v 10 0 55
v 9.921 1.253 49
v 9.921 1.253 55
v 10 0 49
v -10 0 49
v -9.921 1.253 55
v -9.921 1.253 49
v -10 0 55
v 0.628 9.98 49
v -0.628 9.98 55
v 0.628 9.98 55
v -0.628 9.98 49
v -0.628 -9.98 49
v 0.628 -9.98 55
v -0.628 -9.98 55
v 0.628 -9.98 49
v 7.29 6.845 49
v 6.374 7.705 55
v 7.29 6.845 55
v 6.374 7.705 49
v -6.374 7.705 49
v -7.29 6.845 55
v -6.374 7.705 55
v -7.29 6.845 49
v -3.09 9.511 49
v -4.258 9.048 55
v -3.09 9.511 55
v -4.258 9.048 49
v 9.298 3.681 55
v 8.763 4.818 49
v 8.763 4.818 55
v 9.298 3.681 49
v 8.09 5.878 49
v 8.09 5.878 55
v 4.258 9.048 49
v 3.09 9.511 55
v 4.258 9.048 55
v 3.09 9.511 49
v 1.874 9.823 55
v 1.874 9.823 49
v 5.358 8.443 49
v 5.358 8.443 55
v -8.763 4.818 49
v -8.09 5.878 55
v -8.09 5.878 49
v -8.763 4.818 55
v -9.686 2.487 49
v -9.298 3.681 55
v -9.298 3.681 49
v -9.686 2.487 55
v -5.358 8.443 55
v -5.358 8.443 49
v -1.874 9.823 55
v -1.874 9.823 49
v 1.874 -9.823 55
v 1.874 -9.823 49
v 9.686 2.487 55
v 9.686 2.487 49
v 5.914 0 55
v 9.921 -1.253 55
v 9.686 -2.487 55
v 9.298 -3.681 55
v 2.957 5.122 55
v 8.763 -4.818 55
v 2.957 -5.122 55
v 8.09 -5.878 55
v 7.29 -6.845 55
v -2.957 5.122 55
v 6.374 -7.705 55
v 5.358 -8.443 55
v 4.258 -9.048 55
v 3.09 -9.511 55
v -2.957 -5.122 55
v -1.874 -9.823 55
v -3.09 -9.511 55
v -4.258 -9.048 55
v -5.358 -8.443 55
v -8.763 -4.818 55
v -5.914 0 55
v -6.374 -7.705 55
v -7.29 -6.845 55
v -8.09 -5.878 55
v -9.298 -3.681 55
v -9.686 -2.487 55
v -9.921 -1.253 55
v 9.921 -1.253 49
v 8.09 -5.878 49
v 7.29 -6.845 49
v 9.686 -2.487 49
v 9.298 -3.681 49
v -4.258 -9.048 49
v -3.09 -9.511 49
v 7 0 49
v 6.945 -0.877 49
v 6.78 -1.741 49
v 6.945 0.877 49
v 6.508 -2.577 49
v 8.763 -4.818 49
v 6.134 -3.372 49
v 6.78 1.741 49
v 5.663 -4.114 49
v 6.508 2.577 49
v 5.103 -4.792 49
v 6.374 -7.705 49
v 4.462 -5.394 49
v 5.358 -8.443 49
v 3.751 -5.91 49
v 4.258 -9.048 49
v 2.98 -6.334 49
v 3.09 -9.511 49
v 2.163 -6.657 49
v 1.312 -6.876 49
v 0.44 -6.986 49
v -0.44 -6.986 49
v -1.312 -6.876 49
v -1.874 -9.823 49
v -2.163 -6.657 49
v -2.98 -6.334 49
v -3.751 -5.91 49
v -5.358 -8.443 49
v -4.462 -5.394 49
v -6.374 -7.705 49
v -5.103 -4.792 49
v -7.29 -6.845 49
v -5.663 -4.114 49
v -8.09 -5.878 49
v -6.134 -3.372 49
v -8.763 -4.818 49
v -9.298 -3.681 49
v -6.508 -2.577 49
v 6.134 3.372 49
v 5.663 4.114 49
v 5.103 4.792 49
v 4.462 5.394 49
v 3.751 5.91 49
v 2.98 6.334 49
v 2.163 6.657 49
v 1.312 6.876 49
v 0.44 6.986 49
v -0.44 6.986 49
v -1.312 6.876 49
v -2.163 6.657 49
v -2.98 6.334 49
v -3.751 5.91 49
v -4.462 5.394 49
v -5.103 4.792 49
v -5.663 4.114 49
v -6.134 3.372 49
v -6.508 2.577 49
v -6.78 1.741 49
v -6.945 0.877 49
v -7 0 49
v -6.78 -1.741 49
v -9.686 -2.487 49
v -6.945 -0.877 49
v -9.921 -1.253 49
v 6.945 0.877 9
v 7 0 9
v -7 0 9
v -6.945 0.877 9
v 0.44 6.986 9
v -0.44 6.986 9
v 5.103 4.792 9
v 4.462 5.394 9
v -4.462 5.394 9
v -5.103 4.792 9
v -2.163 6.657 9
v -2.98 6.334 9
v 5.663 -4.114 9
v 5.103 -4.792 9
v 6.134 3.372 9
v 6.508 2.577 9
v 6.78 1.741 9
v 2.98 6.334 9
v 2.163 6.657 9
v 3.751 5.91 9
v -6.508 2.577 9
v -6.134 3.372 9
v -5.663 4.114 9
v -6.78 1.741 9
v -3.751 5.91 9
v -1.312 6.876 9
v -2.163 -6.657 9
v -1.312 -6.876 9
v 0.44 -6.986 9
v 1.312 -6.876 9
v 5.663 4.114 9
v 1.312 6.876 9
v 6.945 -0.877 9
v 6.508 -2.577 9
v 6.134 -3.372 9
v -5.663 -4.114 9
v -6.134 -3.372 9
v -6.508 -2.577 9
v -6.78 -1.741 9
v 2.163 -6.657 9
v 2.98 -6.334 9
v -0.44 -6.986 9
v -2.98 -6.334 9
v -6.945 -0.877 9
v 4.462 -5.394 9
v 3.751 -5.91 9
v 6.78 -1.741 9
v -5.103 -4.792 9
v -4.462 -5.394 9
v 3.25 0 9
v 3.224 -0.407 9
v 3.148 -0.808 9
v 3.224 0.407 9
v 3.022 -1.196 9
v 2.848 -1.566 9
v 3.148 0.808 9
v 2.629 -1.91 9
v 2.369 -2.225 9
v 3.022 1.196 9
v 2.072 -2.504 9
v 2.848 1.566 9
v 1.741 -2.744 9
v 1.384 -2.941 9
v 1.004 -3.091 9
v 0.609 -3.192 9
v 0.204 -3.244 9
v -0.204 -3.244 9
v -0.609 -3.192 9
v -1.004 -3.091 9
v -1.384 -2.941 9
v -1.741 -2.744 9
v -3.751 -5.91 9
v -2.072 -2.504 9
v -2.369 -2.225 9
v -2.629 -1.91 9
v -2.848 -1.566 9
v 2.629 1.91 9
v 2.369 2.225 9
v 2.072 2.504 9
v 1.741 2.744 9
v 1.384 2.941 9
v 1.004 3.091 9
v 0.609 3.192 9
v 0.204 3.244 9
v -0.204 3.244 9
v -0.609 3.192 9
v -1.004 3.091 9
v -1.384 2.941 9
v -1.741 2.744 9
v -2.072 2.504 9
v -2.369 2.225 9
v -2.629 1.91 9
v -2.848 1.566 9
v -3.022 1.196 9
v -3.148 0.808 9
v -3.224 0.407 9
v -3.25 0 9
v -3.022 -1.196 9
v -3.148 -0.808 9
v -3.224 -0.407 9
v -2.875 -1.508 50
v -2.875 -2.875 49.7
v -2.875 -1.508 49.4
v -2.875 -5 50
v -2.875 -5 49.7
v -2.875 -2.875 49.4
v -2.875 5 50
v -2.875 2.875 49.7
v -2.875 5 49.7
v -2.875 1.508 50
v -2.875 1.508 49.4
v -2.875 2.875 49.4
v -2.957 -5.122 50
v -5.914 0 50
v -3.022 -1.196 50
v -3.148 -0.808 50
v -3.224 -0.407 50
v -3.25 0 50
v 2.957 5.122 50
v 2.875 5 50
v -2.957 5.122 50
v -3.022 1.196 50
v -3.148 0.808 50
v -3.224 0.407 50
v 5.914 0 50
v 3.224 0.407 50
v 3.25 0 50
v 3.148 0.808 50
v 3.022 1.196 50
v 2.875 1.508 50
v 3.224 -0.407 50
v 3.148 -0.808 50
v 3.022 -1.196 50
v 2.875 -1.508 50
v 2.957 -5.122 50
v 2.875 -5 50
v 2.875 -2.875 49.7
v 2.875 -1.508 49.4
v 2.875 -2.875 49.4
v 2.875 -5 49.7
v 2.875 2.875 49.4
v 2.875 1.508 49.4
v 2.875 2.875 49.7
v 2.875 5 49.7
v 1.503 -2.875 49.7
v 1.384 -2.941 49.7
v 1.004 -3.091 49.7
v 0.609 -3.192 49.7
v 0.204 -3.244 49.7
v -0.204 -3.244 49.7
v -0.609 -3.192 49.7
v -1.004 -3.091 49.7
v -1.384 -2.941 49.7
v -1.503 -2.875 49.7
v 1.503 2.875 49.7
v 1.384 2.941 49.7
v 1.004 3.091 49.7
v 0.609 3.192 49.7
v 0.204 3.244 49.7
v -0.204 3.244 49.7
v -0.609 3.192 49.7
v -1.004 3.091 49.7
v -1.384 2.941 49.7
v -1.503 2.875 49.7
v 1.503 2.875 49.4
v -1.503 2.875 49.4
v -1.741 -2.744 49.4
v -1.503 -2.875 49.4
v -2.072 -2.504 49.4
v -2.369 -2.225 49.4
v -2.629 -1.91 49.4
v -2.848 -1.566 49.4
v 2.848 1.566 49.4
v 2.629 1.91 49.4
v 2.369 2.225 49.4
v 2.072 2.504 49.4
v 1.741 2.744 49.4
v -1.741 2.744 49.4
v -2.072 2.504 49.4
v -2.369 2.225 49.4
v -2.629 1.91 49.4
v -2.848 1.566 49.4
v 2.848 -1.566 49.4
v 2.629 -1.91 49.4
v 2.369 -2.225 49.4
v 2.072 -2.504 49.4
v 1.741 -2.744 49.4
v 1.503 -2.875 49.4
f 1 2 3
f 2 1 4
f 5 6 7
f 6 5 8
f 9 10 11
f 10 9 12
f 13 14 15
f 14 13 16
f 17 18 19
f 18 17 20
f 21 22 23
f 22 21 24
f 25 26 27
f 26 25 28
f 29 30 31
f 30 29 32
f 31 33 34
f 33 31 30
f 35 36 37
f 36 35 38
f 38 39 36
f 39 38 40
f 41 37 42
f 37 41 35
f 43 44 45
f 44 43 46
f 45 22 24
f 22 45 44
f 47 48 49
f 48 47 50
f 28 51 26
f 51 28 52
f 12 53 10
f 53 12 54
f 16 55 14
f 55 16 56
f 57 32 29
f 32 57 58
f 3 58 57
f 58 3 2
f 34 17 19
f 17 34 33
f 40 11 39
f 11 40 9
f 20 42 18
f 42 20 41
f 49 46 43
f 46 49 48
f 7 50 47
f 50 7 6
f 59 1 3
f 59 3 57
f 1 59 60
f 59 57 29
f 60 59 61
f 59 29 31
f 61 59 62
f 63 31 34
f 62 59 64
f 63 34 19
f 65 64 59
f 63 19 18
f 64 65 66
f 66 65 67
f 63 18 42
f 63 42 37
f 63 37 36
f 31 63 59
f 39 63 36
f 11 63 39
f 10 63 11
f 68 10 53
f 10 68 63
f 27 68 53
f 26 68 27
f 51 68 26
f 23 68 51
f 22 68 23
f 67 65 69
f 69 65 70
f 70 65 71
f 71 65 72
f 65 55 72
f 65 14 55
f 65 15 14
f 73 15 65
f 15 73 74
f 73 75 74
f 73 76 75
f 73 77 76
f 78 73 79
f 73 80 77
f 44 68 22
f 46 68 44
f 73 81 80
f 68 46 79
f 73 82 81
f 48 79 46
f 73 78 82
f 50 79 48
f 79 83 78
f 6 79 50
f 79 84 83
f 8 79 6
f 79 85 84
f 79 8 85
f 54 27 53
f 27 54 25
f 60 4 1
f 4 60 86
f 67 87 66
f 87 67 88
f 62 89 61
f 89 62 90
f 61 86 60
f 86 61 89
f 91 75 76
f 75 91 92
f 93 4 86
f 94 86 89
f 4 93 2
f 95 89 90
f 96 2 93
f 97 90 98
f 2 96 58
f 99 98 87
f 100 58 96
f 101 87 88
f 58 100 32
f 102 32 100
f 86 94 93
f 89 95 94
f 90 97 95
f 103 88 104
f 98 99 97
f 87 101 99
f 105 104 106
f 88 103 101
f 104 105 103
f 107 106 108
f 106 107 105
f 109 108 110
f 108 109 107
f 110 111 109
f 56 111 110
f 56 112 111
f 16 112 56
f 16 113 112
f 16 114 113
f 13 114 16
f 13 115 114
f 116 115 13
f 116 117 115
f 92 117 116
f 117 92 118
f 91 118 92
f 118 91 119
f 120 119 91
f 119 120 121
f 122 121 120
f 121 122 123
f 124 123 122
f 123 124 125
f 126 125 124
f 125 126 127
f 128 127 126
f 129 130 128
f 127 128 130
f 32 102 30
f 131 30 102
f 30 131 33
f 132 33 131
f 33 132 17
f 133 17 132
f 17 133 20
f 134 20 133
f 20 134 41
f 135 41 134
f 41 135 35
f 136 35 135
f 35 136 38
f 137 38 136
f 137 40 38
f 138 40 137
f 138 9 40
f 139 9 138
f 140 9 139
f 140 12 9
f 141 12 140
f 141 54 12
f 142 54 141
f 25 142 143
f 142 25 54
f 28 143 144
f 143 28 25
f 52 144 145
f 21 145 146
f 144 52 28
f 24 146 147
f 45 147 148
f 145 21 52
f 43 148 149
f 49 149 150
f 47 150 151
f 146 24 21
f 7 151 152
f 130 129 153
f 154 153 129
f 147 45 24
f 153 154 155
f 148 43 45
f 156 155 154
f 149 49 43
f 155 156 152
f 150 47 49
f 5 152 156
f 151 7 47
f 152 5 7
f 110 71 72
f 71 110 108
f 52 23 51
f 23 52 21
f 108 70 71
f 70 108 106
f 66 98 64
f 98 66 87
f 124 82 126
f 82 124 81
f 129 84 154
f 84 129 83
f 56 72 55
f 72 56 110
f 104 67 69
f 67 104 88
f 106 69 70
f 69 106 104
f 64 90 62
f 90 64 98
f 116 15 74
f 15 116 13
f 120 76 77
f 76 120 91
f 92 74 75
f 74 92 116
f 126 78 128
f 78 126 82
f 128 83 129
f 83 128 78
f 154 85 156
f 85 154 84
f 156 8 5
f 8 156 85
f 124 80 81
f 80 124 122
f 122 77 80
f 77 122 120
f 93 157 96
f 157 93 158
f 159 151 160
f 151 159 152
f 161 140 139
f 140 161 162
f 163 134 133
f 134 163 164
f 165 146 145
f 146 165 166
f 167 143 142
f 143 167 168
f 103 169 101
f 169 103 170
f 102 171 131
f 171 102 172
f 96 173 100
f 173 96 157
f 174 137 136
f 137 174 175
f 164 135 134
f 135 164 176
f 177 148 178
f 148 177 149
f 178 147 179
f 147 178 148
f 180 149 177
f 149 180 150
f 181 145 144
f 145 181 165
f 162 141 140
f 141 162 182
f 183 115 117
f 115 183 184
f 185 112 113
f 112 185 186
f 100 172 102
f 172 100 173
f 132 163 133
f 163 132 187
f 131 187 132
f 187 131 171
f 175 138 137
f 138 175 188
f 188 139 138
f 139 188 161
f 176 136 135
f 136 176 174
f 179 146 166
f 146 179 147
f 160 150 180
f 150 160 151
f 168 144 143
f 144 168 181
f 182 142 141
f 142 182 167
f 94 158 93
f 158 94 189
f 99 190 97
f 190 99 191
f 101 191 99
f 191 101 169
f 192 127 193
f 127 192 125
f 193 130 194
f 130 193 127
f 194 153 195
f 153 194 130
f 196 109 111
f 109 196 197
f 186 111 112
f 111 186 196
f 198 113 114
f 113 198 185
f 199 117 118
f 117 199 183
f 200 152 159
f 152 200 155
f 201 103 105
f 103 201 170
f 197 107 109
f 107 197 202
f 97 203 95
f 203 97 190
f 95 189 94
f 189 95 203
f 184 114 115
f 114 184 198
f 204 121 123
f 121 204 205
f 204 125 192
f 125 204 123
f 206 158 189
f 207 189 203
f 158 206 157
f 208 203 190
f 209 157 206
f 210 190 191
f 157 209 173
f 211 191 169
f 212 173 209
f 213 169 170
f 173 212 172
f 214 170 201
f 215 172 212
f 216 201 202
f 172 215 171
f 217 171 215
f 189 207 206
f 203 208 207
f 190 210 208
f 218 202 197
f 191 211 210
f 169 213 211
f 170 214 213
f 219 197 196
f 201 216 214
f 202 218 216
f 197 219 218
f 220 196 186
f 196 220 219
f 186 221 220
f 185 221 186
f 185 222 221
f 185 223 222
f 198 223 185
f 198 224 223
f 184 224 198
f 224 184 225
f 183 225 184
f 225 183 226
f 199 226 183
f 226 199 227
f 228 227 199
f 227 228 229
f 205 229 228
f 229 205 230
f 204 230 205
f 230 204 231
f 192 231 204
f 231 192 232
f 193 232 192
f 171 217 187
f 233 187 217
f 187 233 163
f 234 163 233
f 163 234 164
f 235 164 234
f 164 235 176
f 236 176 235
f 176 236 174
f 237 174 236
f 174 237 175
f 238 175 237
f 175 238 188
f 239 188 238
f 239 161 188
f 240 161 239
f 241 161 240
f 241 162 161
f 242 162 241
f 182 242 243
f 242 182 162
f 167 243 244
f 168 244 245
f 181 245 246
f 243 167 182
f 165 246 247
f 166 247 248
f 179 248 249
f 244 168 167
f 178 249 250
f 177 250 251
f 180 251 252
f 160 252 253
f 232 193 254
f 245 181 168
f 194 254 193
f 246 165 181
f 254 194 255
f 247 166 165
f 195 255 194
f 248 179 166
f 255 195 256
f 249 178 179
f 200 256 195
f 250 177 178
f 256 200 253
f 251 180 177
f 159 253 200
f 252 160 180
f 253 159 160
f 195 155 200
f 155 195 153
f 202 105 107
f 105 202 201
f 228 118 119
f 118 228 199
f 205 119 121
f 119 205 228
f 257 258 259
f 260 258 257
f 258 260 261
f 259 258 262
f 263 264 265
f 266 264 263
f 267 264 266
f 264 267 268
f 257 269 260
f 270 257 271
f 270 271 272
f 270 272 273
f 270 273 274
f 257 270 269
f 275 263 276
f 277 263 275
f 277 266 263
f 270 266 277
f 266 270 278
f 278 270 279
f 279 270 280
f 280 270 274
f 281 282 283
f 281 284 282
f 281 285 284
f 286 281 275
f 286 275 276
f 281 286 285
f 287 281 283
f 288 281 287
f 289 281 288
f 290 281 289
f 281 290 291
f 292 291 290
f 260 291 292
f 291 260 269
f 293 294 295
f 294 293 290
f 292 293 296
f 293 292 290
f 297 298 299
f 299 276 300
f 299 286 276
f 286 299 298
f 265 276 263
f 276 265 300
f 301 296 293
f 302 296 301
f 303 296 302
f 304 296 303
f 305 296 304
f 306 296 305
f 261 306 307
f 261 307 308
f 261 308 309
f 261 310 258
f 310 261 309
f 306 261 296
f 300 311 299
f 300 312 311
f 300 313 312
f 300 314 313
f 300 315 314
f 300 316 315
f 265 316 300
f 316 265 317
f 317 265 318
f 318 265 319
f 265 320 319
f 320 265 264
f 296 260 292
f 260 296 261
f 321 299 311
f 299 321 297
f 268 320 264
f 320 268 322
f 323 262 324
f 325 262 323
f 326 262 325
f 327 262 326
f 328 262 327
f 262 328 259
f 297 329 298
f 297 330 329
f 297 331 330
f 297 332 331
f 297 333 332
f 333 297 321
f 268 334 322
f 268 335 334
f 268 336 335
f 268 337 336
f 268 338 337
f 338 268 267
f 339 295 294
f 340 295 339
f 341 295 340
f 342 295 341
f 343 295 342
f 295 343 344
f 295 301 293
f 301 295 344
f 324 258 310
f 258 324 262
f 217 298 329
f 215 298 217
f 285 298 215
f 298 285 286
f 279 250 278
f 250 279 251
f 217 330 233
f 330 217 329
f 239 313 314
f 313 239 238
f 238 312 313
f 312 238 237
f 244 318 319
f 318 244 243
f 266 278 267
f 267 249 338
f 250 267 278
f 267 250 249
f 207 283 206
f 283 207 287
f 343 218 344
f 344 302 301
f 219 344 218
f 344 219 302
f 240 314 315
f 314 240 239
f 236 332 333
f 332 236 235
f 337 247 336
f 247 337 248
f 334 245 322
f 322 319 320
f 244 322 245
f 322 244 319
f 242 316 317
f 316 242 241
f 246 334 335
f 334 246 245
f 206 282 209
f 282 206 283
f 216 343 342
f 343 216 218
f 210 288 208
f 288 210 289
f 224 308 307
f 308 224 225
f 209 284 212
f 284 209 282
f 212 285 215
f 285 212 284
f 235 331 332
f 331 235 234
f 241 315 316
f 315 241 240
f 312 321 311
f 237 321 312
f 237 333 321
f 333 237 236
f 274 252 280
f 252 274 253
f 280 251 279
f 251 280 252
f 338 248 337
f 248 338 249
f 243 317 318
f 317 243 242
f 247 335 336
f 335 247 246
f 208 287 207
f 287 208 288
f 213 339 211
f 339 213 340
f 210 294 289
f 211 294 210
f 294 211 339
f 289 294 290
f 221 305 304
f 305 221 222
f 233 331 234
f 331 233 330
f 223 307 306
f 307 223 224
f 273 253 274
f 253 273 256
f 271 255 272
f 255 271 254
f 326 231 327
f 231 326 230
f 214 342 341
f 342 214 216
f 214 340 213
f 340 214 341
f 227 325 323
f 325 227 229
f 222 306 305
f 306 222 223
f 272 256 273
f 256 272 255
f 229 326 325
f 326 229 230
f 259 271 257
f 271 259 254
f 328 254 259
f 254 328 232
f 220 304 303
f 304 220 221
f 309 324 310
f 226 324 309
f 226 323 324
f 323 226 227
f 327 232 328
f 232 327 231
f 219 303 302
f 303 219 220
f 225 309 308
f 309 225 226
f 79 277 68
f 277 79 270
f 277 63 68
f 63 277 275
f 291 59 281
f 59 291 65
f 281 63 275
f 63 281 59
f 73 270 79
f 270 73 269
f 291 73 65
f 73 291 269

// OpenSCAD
$fn = 50;


difference() {
	union() {
		translate(v = [0, 0, 49.0000000000]) {
			cylinder(h = 6, r = 10.0000000000);
		}
		translate(v = [0, 0, 9.0000000000]) {
			cylinder(h = 46, r = 7.0000000000);
		}
	}
	union() {
		translate(v = [0, 0, 55]) {
			rotate(a = [0, 0, 0]) {
				difference() {
					union() {
						#translate(v = [-2.8750000000, -5.0000000000, -5.3000000000]) {
							cube(size = [5.7500000000, 10, 0.3000000000]);
						}
						#translate(v = [-2.8750000000, -2.8750000000, -5.6000000000]) {
							cube(size = [5.7500000000, 5.7500000000, 0.3000000000]);
						}
						#translate(v = [-2.8750000000, -5.0000000000, 0]) {
							cube(size = [5.7500000000, 10, 0.3000000000]);
						}
						#translate(v = [-2.8750000000, -2.8750000000, 0.3000000000]) {
							cube(size = [5.7500000000, 5.7500000000, 0.3000000000]);
						}
						#translate(v = [0, 0, -100.0000000000]) {
							cylinder(h = 200, r = 3.2500000000);
						}
						translate(v = [0, 0, -5]) {
							#linear_extrude(height = 5) {
								polygon(points = [[5.9142500000, 0.0000000000], [2.9571250000, 5.1218907443], [-2.9571250000, 5.1218907443], [-5.9142500000, 0.0000000000], [-2.9571250000, -5.1218907443], [2.9571250000, -5.1218907443]]);
							}
						}
						#translate(v = [-2.8750000000, -5.0000000000, -5.3000000000]) {
							cube(size = [5.7500000000, 10, 0.3000000000]);
						}
						#translate(v = [-2.8750000000, -2.8750000000, -5.6000000000]) {
							cube(size = [5.7500000000, 5.7500000000, 0.3000000000]);
						}
						#translate(v = [-2.8750000000, -5.0000000000, 0]) {
							cube(size = [5.7500000000, 10, 0.3000000000]);
						}
						#translate(v = [-2.8750000000, -2.8750000000, 0.3000000000]) {
							cube(size = [5.7500000000, 5.7500000000, 0.3000000000]);
						}
						#translate(v = [0, 0, -100.0000000000]) {
							cylinder(h = 200, r = 3.2500000000);
						}
						#translate(v = [-2.8750000000, -5.0000000000, -5.3000000000]) {
							cube(size = [5.7500000000, 10, 0.3000000000]);
						}
						#translate(v = [-2.8750000000, -2.8750000000, -5.6000000000]) {
							cube(size = [5.7500000000, 5.7500000000, 0.3000000000]);
						}
						#translate(v = [-2.8750000000, -5.0000000000, 0]) {
							cube(size = [5.7500000000, 10, 0.3000000000]);
						}
						#translate(v = [-2.8750000000, -2.8750000000, 0.3000000000]) {
							cube(size = [5.7500000000, 5.7500000000, 0.3000000000]);
						}
						#translate(v = [0, 0, -100.0000000000]) {
							cylinder(h = 200, r = 3.2500000000);
						}
					}
					union();
				}
			}
		}
		#translate(v = [0, 0, -100.0000000000]) {
			cylinder(h = 200, r = 3.2500000000);
		}
	}
}
